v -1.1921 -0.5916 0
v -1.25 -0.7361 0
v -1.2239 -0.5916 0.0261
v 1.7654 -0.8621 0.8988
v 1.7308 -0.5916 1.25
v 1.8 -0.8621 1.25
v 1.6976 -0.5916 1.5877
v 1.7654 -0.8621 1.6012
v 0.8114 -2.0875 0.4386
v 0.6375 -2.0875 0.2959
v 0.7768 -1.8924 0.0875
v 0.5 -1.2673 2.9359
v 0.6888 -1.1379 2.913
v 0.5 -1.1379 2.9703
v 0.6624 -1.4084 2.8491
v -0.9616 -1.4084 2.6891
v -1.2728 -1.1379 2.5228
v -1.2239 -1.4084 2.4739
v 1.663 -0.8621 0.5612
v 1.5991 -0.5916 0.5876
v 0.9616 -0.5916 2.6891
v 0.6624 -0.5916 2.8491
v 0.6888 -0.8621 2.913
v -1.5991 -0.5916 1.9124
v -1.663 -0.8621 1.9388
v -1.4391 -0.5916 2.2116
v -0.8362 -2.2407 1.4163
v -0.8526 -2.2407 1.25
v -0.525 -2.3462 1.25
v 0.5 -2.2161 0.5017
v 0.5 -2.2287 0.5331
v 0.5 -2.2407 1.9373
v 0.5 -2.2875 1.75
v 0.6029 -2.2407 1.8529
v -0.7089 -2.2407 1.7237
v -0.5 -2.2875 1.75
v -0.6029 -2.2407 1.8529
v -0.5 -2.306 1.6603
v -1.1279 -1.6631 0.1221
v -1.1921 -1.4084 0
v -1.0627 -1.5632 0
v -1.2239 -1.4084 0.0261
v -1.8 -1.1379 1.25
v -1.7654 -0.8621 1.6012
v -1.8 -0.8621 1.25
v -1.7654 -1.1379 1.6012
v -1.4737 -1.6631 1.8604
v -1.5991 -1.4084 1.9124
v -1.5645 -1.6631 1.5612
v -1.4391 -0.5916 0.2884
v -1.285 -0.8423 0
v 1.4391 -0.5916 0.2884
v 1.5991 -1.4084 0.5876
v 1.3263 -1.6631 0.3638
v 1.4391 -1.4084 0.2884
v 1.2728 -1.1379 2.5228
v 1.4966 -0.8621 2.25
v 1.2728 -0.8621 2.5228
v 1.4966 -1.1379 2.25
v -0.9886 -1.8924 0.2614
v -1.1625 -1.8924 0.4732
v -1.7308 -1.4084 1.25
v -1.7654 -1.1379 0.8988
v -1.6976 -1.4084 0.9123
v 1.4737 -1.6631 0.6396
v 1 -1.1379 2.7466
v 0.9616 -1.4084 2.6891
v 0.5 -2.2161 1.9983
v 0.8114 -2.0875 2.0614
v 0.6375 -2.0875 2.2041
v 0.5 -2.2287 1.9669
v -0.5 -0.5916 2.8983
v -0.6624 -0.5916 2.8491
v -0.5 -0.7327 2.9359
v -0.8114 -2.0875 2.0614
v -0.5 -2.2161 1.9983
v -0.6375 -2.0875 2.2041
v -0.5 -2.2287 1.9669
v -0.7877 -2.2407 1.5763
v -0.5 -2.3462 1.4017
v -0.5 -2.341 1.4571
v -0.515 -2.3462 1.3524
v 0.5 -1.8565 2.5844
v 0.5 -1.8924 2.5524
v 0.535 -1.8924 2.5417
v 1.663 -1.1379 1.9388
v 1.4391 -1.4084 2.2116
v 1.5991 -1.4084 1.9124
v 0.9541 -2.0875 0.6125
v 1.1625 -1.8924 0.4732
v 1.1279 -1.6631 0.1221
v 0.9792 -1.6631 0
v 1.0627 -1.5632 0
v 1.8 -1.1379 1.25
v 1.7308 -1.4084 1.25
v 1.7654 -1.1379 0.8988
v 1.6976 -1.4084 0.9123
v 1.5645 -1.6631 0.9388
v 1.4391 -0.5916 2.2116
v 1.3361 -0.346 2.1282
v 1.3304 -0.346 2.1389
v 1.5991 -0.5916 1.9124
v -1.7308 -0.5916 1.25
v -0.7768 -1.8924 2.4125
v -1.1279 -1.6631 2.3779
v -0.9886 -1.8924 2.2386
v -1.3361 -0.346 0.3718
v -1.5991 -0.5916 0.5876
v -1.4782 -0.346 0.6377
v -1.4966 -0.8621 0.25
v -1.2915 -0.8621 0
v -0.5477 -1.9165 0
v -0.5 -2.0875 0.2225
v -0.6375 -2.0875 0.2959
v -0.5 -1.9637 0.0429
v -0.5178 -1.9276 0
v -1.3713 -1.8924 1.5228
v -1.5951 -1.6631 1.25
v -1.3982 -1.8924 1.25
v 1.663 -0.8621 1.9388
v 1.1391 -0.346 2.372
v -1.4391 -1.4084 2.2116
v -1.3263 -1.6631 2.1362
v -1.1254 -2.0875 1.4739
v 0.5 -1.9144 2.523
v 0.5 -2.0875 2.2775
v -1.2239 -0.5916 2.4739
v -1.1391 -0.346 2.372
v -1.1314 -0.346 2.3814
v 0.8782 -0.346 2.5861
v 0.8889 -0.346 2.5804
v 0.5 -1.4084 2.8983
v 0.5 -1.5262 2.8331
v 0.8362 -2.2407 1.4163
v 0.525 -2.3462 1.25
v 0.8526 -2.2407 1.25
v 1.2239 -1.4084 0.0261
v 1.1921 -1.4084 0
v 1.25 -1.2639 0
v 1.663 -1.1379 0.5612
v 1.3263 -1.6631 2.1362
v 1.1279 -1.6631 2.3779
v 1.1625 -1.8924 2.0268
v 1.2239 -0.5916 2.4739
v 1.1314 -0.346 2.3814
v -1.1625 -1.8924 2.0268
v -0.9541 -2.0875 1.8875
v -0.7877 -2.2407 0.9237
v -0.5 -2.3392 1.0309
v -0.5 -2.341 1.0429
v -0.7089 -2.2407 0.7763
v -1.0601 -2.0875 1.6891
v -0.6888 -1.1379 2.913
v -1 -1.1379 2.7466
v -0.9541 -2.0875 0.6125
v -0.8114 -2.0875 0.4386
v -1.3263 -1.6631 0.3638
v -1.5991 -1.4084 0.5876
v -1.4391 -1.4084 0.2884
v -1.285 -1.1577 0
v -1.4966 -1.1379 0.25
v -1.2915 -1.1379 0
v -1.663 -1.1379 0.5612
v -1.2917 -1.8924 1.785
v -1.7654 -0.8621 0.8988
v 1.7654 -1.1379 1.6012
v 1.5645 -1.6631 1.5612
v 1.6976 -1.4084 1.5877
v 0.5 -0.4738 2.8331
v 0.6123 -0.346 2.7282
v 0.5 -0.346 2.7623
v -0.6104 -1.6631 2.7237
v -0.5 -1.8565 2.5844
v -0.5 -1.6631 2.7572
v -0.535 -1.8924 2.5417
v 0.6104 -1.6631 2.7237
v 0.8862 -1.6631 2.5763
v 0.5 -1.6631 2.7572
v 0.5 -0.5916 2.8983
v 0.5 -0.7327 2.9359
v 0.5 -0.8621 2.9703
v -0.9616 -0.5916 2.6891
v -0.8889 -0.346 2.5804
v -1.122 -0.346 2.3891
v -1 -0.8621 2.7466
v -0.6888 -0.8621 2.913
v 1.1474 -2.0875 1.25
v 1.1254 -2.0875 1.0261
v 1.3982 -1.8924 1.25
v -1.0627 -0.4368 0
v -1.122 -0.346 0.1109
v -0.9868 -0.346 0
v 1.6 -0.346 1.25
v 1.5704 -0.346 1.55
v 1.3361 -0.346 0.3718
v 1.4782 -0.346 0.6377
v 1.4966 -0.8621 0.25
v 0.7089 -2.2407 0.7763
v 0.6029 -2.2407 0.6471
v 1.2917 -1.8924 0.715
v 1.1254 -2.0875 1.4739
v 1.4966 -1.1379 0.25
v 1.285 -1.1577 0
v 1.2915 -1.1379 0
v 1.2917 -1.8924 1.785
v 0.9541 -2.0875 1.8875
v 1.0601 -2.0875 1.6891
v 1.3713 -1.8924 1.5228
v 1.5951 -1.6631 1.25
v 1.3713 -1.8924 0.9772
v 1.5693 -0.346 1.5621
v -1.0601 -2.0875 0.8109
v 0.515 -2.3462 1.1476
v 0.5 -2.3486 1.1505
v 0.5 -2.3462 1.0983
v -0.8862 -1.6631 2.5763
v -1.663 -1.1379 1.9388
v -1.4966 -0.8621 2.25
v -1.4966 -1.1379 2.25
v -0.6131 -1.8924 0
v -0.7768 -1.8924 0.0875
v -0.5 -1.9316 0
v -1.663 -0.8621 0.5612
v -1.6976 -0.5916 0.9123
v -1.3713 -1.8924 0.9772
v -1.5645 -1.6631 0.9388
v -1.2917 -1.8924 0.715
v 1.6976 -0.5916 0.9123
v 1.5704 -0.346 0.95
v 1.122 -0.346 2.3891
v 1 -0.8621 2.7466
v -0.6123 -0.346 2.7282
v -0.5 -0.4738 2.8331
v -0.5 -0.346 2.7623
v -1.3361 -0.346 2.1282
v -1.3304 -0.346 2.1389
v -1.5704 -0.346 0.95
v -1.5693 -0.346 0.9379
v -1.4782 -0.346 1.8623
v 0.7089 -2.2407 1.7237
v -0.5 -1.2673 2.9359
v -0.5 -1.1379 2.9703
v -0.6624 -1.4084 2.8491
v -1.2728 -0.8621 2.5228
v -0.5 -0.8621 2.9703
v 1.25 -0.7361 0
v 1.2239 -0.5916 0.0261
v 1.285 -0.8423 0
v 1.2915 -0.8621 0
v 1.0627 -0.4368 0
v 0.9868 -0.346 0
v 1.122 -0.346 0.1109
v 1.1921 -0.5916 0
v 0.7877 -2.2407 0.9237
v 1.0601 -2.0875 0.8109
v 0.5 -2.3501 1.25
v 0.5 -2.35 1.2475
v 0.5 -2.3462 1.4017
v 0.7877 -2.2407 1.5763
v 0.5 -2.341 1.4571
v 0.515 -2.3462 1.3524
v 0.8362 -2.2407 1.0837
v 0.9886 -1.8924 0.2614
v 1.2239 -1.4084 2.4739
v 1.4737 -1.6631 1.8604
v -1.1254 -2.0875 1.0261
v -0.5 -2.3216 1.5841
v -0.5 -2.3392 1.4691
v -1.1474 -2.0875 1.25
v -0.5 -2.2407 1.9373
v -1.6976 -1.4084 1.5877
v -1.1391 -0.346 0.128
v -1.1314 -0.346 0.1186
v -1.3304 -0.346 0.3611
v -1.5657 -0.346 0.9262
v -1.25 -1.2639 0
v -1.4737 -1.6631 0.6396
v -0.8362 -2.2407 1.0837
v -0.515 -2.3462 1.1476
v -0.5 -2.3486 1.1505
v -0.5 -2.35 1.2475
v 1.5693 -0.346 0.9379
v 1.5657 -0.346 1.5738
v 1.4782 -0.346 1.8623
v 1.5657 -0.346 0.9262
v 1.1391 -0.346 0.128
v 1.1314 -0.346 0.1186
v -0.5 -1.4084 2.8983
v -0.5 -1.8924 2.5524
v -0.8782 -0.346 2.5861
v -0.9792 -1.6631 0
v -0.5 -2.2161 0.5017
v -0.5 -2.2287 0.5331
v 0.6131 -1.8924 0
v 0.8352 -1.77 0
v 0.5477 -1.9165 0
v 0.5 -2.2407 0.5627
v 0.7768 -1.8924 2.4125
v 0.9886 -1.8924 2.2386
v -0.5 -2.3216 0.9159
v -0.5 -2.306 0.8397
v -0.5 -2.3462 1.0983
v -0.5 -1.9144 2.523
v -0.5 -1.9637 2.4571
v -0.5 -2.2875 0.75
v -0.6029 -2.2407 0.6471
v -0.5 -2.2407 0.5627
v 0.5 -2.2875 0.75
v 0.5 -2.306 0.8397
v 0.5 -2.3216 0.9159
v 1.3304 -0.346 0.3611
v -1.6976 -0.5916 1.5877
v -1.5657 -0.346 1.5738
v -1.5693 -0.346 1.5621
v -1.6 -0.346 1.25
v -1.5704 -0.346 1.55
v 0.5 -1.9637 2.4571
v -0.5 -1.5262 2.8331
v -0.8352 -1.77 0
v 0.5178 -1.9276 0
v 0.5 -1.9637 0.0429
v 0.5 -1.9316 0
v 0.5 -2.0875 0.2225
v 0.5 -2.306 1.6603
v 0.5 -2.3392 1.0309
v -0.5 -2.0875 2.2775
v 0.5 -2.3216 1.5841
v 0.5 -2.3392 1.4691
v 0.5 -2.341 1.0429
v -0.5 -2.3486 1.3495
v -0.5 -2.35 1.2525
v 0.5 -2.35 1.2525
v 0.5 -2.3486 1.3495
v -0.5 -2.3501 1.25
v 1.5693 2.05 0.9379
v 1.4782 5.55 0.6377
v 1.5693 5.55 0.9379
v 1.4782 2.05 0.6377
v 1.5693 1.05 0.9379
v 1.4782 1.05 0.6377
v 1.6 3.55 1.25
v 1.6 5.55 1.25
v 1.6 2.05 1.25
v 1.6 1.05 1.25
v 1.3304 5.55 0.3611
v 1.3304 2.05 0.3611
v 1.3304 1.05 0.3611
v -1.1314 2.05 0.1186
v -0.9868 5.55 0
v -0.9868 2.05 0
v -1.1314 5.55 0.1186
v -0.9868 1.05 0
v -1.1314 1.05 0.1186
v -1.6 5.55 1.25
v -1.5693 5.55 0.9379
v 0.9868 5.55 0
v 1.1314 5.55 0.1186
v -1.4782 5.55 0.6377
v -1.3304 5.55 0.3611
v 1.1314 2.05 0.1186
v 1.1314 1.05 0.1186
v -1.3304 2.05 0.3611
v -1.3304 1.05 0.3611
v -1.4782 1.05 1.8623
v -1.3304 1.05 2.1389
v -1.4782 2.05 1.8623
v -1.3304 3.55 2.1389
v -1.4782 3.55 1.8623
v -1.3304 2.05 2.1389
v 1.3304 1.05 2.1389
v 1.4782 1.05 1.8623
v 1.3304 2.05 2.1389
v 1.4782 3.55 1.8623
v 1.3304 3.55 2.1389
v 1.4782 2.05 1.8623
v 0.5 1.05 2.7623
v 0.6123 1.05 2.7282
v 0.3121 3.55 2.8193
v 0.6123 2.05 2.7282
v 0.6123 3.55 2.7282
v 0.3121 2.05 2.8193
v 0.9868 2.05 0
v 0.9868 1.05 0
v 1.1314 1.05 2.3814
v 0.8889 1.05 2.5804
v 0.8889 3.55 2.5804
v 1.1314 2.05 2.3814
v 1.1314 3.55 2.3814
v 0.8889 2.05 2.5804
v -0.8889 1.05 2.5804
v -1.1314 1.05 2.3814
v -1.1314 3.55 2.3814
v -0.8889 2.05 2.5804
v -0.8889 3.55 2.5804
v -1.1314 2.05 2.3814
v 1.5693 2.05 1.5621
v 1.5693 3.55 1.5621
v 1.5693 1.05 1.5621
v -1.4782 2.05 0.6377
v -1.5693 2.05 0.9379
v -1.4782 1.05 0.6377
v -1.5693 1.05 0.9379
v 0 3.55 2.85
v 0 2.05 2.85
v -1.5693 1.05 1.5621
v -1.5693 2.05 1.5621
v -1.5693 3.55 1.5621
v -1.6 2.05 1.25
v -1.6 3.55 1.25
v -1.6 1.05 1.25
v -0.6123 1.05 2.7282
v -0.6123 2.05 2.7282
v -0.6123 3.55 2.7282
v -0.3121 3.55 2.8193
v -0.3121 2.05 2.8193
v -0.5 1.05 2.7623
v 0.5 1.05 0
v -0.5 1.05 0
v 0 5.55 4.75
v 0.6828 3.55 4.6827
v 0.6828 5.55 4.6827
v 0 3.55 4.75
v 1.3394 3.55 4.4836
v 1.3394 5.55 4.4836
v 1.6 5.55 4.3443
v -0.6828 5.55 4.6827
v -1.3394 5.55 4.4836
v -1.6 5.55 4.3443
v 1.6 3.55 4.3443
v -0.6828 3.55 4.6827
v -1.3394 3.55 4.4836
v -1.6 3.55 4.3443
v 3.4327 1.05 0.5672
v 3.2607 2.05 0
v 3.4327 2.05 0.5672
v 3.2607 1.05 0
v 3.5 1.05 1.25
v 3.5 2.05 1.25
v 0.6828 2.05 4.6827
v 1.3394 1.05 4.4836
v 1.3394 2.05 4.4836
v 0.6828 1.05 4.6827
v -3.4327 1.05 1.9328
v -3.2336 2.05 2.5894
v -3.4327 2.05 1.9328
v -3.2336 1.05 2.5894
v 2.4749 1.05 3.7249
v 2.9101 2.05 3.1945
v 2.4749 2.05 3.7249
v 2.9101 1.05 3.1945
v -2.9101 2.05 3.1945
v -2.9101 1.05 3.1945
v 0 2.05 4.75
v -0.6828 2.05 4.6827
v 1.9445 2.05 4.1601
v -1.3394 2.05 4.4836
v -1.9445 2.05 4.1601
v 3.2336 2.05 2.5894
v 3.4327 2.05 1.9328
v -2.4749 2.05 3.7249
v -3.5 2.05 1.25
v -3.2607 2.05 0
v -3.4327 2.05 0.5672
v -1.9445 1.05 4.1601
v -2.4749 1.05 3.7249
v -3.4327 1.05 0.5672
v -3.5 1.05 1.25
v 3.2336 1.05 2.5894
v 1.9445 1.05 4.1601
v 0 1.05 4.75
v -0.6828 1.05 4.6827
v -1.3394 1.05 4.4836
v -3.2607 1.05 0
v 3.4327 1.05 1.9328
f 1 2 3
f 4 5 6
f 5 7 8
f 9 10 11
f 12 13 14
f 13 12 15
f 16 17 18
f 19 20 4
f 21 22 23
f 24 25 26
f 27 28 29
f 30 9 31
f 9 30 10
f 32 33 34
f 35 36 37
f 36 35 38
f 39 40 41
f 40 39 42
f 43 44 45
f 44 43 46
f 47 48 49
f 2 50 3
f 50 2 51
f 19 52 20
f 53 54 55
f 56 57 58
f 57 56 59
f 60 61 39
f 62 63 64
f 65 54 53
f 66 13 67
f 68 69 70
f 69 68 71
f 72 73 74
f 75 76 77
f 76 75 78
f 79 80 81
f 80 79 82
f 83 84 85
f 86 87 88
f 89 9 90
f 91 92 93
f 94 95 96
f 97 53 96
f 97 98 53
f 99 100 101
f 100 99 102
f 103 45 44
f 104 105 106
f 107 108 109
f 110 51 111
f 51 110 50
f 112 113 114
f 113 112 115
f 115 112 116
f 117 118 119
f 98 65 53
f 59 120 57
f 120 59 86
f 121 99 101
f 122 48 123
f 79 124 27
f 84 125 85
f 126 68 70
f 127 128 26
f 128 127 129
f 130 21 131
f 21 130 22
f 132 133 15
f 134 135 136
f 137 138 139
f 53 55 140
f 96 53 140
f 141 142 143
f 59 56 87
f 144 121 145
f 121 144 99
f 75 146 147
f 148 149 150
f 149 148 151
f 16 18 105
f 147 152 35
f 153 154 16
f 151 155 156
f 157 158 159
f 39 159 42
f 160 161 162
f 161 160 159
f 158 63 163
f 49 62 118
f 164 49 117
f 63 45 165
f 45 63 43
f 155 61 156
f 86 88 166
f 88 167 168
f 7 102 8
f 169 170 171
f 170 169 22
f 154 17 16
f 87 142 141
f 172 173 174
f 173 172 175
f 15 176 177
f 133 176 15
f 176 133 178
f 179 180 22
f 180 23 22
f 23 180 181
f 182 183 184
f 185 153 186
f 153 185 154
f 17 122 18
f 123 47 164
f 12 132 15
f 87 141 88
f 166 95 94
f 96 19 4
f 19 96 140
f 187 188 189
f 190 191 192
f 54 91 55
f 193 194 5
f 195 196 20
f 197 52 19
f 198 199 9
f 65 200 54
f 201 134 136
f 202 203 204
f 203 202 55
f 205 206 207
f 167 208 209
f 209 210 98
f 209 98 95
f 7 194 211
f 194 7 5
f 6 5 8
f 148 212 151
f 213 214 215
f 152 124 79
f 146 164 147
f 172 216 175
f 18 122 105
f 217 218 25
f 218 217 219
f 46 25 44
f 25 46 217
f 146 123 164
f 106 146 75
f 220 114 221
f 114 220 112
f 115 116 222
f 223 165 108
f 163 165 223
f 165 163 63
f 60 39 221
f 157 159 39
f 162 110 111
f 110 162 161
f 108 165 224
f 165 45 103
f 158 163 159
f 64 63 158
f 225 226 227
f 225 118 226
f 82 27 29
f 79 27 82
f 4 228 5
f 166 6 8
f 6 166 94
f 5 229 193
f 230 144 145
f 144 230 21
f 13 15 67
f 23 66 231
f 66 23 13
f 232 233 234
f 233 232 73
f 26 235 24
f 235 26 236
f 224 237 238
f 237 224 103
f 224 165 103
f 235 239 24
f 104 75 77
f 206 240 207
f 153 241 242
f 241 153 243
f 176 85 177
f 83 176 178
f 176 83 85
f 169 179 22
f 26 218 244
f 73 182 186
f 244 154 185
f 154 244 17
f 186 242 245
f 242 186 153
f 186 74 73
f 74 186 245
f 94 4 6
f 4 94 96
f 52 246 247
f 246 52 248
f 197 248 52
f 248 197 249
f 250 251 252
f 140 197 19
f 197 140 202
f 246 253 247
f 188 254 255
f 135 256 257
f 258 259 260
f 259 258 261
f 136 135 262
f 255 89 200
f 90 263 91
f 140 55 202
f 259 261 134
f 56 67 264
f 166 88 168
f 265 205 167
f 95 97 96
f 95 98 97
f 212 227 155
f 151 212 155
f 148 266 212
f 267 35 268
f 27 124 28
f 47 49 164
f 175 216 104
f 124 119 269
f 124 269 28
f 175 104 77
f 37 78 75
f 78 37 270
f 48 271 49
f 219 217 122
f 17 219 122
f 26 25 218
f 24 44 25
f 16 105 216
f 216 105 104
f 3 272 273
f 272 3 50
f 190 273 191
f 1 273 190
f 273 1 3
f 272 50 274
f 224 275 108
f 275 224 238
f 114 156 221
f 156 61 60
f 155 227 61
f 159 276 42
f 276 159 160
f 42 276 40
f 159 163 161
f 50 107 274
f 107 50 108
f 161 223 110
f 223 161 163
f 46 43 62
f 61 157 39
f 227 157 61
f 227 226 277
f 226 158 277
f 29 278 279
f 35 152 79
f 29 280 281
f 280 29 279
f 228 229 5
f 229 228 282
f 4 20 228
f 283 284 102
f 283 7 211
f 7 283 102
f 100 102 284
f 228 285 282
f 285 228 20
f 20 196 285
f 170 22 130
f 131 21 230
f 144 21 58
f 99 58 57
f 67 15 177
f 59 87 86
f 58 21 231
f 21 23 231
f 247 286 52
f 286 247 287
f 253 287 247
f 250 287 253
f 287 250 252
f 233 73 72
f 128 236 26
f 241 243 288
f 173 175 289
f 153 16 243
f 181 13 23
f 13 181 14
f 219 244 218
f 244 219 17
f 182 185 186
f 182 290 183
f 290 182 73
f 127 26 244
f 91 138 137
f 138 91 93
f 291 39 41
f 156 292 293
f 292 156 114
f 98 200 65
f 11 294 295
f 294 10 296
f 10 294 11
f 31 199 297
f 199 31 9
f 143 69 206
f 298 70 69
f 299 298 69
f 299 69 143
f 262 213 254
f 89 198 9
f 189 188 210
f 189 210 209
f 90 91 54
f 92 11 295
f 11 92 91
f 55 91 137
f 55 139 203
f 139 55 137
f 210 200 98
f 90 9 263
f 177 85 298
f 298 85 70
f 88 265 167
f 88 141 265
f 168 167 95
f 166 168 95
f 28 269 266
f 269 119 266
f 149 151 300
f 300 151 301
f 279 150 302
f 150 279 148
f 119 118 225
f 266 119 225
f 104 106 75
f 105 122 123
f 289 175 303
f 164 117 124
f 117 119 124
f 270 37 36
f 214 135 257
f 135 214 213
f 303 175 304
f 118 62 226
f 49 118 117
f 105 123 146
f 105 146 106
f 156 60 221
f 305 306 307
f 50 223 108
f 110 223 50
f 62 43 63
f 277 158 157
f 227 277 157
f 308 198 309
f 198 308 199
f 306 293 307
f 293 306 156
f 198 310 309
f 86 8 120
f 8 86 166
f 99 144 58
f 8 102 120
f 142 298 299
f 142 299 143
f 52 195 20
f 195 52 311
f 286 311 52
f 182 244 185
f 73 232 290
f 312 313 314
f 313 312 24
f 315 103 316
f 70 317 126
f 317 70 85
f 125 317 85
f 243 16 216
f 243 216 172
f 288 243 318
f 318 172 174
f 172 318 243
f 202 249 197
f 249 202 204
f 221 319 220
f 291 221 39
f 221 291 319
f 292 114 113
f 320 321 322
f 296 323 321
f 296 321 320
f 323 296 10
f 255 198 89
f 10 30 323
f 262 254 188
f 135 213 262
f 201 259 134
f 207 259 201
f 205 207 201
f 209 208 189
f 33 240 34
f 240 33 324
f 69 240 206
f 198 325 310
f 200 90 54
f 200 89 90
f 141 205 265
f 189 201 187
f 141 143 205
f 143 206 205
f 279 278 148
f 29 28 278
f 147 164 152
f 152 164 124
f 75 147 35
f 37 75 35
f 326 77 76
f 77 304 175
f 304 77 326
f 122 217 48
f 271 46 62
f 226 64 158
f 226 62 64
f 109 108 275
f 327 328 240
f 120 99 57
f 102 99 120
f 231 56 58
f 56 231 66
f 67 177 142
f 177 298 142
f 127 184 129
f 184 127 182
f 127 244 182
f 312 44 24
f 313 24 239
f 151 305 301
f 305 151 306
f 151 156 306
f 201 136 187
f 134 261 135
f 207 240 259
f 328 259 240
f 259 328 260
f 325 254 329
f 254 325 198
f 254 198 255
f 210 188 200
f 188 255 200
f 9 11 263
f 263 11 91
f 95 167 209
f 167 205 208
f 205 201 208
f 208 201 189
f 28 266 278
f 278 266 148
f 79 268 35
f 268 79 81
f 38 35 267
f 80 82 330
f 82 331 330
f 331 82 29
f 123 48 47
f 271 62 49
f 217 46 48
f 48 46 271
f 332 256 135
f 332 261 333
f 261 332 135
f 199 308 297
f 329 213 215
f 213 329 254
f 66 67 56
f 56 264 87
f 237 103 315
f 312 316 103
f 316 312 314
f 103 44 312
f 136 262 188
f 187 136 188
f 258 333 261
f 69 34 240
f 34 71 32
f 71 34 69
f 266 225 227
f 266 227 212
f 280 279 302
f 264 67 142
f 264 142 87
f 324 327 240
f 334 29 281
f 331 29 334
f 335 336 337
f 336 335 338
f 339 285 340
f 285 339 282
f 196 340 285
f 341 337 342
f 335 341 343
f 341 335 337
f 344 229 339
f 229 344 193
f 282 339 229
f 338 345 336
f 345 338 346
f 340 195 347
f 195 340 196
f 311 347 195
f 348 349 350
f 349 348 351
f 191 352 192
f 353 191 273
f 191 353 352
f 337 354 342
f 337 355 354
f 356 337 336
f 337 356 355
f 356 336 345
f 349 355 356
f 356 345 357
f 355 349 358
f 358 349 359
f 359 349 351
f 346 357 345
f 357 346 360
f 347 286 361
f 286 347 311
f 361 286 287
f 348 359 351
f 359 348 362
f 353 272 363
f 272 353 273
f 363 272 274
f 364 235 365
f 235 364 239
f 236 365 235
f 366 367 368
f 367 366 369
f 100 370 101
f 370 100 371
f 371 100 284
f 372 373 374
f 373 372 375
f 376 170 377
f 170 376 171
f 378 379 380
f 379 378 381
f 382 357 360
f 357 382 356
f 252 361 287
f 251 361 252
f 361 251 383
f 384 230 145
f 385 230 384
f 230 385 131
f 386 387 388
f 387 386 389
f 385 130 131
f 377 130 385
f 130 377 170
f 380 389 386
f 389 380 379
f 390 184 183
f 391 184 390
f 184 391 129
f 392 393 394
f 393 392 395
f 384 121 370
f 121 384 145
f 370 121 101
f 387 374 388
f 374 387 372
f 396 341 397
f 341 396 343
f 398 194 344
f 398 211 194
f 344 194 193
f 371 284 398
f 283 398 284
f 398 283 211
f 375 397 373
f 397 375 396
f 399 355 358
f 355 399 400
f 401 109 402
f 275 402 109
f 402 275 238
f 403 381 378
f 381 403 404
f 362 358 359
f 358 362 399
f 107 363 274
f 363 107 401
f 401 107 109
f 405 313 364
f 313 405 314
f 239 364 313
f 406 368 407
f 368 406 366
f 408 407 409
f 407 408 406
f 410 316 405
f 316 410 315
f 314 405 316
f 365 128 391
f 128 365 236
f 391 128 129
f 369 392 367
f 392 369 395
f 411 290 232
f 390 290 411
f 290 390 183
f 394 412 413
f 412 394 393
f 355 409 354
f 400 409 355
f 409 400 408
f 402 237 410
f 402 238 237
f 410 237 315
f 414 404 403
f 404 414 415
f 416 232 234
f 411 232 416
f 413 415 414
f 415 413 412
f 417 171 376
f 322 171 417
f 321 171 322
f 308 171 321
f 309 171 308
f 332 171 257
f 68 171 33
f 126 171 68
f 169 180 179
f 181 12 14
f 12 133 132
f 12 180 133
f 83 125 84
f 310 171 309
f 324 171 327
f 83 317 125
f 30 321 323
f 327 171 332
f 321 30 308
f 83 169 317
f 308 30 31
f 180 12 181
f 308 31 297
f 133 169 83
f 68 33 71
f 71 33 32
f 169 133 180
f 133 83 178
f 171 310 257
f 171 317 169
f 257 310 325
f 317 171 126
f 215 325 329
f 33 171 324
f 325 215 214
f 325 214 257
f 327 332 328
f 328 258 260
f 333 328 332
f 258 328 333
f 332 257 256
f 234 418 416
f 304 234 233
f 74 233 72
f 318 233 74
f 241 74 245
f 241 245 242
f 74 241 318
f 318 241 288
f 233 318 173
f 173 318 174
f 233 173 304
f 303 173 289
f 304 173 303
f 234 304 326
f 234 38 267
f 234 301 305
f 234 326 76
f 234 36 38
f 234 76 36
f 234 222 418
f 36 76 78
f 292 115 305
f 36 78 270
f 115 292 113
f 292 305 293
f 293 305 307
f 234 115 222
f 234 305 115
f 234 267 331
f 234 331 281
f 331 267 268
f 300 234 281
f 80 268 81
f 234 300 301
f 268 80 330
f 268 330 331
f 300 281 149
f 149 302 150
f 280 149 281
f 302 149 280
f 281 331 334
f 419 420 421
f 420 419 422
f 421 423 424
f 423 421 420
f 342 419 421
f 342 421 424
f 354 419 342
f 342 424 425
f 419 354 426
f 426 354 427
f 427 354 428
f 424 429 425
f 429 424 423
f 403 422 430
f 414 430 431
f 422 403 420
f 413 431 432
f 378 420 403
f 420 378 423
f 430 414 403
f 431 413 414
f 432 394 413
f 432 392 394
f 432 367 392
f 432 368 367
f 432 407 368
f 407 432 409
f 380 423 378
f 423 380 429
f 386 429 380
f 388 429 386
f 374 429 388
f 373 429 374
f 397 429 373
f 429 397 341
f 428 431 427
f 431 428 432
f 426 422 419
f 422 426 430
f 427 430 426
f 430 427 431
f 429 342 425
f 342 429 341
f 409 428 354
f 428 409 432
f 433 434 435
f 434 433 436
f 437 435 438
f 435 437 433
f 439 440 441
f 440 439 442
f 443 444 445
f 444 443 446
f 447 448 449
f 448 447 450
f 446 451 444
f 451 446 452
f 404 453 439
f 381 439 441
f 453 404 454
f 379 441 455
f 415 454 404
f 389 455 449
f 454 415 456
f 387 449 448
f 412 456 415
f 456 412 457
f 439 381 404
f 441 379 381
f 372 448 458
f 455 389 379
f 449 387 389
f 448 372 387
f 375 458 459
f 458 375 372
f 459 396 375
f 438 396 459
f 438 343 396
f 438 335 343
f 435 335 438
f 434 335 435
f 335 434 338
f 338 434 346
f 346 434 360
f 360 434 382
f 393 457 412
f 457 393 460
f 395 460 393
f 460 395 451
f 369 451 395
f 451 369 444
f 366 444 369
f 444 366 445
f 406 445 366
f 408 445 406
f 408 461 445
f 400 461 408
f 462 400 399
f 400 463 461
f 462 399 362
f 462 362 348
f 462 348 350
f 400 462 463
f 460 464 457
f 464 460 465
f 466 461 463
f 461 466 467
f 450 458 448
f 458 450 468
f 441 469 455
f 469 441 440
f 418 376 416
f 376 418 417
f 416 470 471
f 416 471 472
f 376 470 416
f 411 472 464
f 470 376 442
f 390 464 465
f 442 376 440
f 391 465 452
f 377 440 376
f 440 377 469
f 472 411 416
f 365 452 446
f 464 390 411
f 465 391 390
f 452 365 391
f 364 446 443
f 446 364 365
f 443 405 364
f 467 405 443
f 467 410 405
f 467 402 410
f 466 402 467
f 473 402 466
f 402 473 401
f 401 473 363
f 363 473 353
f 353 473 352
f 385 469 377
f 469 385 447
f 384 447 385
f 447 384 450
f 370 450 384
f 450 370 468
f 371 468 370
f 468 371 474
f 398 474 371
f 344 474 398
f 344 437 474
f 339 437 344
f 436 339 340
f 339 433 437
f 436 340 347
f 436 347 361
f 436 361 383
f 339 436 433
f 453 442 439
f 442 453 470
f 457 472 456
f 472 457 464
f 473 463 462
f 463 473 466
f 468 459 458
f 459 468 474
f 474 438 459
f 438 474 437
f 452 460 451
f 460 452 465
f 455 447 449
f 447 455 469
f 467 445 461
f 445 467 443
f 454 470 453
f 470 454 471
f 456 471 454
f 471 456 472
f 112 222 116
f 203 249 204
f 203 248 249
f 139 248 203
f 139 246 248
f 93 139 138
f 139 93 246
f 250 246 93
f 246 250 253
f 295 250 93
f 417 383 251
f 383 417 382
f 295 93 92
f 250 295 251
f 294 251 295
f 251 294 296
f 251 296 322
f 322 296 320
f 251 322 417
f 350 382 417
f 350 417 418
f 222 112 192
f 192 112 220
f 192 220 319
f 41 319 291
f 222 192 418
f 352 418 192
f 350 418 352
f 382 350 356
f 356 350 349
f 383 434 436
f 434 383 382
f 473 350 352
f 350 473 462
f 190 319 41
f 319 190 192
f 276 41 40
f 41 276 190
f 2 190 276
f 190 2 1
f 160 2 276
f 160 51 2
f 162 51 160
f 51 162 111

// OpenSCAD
/*
* This work is licensed under a Creative Commons Attribution-NonCommercial-ShareAlike 4.0 International License.
* http://creativecommons.org/licenses/by-nc-sa/4.0/
*
* Author: Isaac Foraker
*/

// A simple riser to install an M.2 2242 NVMe drive

$fn=32;

opening = 3.2;          // Hole in board
board_depth = 1.4;      // How thick is the board?
riser_height = 1;       // How tall should the riser be?
nvme_thickness = 1.5;   // How thick is the NVMe drive?

height = board_depth + riser_height + nvme_thickness + 2;

module part1() {
    difference() {
        union() {
            // Draw board clip
            resize([3.6,3.6,2.8]) sphere(r=3);
            // Draw main post
            translate([0,0,0.65]) cylinder(h = height, r = opening/2);
        }
        // Cut a slot in the post to allow it to flex through the board
        translate([-0.5,-2,-1.5]) cube([1,4,4]);
    }
    translate([0,0,0.65]) {
        // Board rest
        translate([0, 0, board_depth]) cylinder(h=riser_height, r=3.5);
    }
    translate([0,0,0.65+height-2]) {
        // NVMe drive clip
        intersection() {
            cylinder(h=2,r=3.5);
            translate([-opening/2,-8,0]) cube([opening, 8, 2]);
        }
    }
}

// Now turn the model on its side, slightly sunken beneath the plain, and wrap it in a bounding box to flatten the bottom so it can print without supports.
intersection() {
    translate([0,-1,1.25]) rotate([-90,0,0]) {
        part1();
    }
    translate([-4,-3,0]) cube([8,10,6]);
}
